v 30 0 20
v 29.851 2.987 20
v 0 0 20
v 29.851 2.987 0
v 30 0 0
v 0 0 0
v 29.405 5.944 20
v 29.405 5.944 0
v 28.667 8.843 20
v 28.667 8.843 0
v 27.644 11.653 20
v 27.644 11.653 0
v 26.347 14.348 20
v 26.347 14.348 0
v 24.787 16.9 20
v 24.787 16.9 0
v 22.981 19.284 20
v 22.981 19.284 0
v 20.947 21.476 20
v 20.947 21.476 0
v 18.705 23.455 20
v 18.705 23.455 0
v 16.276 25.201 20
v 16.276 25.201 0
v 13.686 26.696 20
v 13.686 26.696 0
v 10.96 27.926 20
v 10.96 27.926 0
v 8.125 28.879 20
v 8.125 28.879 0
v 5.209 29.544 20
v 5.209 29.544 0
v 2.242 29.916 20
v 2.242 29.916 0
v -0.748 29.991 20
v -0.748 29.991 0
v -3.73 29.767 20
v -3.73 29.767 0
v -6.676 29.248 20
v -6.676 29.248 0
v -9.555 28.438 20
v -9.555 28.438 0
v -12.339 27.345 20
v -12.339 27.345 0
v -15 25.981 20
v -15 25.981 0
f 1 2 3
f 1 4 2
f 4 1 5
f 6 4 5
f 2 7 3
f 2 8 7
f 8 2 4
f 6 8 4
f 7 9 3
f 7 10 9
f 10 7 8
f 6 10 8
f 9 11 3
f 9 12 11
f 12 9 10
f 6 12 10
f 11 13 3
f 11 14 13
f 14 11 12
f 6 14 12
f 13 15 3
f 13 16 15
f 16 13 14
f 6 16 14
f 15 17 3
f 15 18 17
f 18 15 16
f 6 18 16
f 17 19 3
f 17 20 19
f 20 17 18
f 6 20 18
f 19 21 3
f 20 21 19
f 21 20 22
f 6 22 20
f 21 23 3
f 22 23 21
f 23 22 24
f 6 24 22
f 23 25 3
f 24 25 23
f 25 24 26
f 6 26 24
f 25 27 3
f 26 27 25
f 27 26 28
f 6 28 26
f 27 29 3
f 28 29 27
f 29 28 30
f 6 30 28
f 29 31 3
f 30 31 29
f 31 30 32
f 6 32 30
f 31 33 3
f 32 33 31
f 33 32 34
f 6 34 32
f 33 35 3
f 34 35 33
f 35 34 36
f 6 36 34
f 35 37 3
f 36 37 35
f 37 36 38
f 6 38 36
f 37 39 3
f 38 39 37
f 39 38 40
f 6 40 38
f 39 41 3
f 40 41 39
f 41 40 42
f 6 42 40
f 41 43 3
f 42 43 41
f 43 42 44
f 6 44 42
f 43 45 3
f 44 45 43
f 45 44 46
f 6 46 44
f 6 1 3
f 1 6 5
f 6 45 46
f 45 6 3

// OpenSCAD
// Start: lazy_union
default_5_default_5();
// End: lazy_union

// Modules.

// 'PartMaterial undef-default - default 5.0'
module default_5_default_5() {
  // 'None : _combine_solids_and_holes'
  union() {
    // 'default : _combine_solids_and_holes'
    union() {
      // 'pie : _combine_solids_and_holes'
      union() {
        // 'pie'
        polyhedron(points=[[0.0, 0.0, 0.0], [0.0, 0.0, 20.0], [30.0, 0.0, 20.0], [30.0, 0.0, 0.0], [0.0, 0.0, 0.0], [0.0, 0.0, 20.0], [29.85092326096204, 2.9870353978744992, 20.0], [29.85092326096204, 2.9870353978744992, 0.0], [0.0, 0.0, 0.0], [0.0, 0.0, 20.0], [29.405174635456316, 5.944384295981926, 20.0], [29.405174635456316, 5.944384295981926, 0.0], [0.0, 0.0, 0.0], [0.0, 0.0, 20.0], [28.667184173584225, 8.842655232327125, 20.0], [28.667184173584225, 8.842655232327125, 0.0], [0.0, 0.0, 0.0], [0.0, 0.0, 20.0], [27.64428635611223, 11.653043888240841, 20.0], [27.64428635611223, 11.653043888240841, 0.0], [0.0, 0.0, 0.0], [0.0, 0.0, 20.0], [26.346647201106855, 14.347619358639546, 20.0], [26.346647201106855, 14.347619358639546, 0.0], [0.0, 0.0, 0.0], [0.0, 0.0, 20.0], [24.787163229479848, 16.899601741908658, 20.0], [24.787163229479848, 16.899601741908658, 0.0], [0.0, 0.0, 0.0], [0.0, 0.0, 20.0], [22.98133329356934, 19.283628290596177, 20.0], [22.98133329356934, 19.283628290596177, 0.0], [0.0, 0.0, 0.0], [0.0, 0.0, 20.0], [20.947104542582185, 21.476005477791553, 20.0], [20.947104542582185, 21.476005477791553, 0.0], [0.0, 0.0, 0.0], [0.0, 0.0, 20.0], [18.70469405576201, 23.45494447404089, 20.0], [18.70469405576201, 23.45494447404089, 0.0], [0.0, 0.0, 0.0], [0.0, 0.0, 20.0], [16.276387915972784, 25.200777694523143, 20.0], [16.276387915972784, 25.200777694523143, 0.0], [0.0, 0.0, 0.0], [0.0, 0.0, 20.0], [13.686319720594891, 26.696154264344056, 20.0], [13.686319720594891, 26.696154264344056, 0.0], [0.0, 0.0, 0.0], [0.0, 0.0, 20.0], [10.960230730991857, 27.926212459326123, 20.0], [10.960230730991857, 27.926212459326123, 0.0], [0.0, 0.0, 0.0], [0.0, 0.0, 20.0], [8.12521404429016, 28.87872740850036, 20.0], [8.12521404429016, 28.87872740850036, 0.0], [0.0, 0.0, 0.0], [0.0, 0.0, 20.0], [5.209445330007912, 29.544232590366242, 20.0], [5.209445330007912, 29.544232590366242, 0.0], [0.0, 0.0, 0.0], [0.0, 0.0, 20.0], [2.241902807592732, 29.916113915435403, 20.0], [2.241902807592732, 29.916113915435403, 0.0], [0.0, 0.0, 0.0], [0.0, 0.0, 20.0], [-0.7479207521421807, 29.990675460024487, 20.0], [-0.7479207521421807, 29.990675460024487, 0.0], [0.0, 0.0, 0.0], [0.0, 0.0, 20.0], [-3.7303111394245483, 29.767176198005163, 20.0], [-3.7303111394245483, 29.767176198005163, 0.0], [0.0, 0.0, 0.0], [0.0, 0.0, 20.0], [-6.675628018689423, 29.247837365454707, 20.0], [-6.675628018689423, 29.247837365454707, 0.0], [0.0, 0.0, 0.0], [0.0, 0.0, 20.0], [-9.55459950755053, 28.437820385013953, 20.0], [-9.55459950755053, 28.437820385013953, 0.0], [0.0, 0.0, 0.0], [0.0, 0.0, 20.0], [-12.338613093918342, 27.345175569350197, 20.0], [-12.338613093918342, 27.345175569350197, 0.0], [0.0, 0.0, 0.0], [0.0, 0.0, 20.0], [-14.999999999999993, 25.98076211353316, 20.0], [-14.999999999999993, 25.98076211353316, 0.0]], faces=[[0, 4, 5, 1], [1, 5, 6, 2], [2, 6, 7, 3], [3, 7, 4, 0], [4, 8, 9, 5], [5, 9, 10, 6], [6, 10, 11, 7], [7, 11, 8, 4], [8, 12, 13, 9], [9, 13, 14, 10], [10, 14, 15, 11], [11, 15, 12, 8], [12, 16, 17, 13], [13, 17, 18, 14], [14, 18, 19, 15], [15, 19, 16, 12], [16, 20, 21, 17], [17, 21, 22, 18], [18, 22, 23, 19], [19, 23, 20, 16], [20, 24, 25, 21], [21, 25, 26, 22], [22, 26, 27, 23], [23, 27, 24, 20], [24, 28, 29, 25], [25, 29, 30, 26], [26, 30, 31, 27], [27, 31, 28, 24], [28, 32, 33, 29], [29, 33, 34, 30], [30, 34, 35, 31], [31, 35, 32, 28], [32, 36, 37, 33], [33, 37, 38, 34], [34, 38, 39, 35], [35, 39, 36, 32], [36, 40, 41, 37], [37, 41, 42, 38], [38, 42, 43, 39], [39, 43, 40, 36], [40, 44, 45, 41], [41, 45, 46, 42], [42, 46, 47, 43], [43, 47, 44, 40], [44, 48, 49, 45], [45, 49, 50, 46], [46, 50, 51, 47], [47, 51, 48, 44], [48, 52, 53, 49], [49, 53, 54, 50], [50, 54, 55, 51], [51, 55, 52, 48], [52, 56, 57, 53], [53, 57, 58, 54], [54, 58, 59, 55], [55, 59, 56, 52], [56, 60, 61, 57], [57, 61, 62, 58], [58, 62, 63, 59], [59, 63, 60, 56], [60, 64, 65, 61], [61, 65, 66, 62], [62, 66, 67, 63], [63, 67, 64, 60], [64, 68, 69, 65], [65, 69, 70, 66], [66, 70, 71, 67], [67, 71, 68, 64], [68, 72, 73, 69], [69, 73, 74, 70], [70, 74, 75, 71], [71, 75, 72, 68], [72, 76, 77, 73], [73, 77, 78, 74], [74, 78, 79, 75], [75, 79, 76, 72], [76, 80, 81, 77], [77, 81, 82, 78], [78, 82, 83, 79], [79, 83, 80, 76], [80, 84, 85, 81], [81, 85, 86, 82], [82, 86, 87, 83], [83, 87, 84, 80], [0, 1, 2, 3], [87, 86, 85, 84]], convexity=10);
      }
    }
  }
} // end module default_5_default_5
